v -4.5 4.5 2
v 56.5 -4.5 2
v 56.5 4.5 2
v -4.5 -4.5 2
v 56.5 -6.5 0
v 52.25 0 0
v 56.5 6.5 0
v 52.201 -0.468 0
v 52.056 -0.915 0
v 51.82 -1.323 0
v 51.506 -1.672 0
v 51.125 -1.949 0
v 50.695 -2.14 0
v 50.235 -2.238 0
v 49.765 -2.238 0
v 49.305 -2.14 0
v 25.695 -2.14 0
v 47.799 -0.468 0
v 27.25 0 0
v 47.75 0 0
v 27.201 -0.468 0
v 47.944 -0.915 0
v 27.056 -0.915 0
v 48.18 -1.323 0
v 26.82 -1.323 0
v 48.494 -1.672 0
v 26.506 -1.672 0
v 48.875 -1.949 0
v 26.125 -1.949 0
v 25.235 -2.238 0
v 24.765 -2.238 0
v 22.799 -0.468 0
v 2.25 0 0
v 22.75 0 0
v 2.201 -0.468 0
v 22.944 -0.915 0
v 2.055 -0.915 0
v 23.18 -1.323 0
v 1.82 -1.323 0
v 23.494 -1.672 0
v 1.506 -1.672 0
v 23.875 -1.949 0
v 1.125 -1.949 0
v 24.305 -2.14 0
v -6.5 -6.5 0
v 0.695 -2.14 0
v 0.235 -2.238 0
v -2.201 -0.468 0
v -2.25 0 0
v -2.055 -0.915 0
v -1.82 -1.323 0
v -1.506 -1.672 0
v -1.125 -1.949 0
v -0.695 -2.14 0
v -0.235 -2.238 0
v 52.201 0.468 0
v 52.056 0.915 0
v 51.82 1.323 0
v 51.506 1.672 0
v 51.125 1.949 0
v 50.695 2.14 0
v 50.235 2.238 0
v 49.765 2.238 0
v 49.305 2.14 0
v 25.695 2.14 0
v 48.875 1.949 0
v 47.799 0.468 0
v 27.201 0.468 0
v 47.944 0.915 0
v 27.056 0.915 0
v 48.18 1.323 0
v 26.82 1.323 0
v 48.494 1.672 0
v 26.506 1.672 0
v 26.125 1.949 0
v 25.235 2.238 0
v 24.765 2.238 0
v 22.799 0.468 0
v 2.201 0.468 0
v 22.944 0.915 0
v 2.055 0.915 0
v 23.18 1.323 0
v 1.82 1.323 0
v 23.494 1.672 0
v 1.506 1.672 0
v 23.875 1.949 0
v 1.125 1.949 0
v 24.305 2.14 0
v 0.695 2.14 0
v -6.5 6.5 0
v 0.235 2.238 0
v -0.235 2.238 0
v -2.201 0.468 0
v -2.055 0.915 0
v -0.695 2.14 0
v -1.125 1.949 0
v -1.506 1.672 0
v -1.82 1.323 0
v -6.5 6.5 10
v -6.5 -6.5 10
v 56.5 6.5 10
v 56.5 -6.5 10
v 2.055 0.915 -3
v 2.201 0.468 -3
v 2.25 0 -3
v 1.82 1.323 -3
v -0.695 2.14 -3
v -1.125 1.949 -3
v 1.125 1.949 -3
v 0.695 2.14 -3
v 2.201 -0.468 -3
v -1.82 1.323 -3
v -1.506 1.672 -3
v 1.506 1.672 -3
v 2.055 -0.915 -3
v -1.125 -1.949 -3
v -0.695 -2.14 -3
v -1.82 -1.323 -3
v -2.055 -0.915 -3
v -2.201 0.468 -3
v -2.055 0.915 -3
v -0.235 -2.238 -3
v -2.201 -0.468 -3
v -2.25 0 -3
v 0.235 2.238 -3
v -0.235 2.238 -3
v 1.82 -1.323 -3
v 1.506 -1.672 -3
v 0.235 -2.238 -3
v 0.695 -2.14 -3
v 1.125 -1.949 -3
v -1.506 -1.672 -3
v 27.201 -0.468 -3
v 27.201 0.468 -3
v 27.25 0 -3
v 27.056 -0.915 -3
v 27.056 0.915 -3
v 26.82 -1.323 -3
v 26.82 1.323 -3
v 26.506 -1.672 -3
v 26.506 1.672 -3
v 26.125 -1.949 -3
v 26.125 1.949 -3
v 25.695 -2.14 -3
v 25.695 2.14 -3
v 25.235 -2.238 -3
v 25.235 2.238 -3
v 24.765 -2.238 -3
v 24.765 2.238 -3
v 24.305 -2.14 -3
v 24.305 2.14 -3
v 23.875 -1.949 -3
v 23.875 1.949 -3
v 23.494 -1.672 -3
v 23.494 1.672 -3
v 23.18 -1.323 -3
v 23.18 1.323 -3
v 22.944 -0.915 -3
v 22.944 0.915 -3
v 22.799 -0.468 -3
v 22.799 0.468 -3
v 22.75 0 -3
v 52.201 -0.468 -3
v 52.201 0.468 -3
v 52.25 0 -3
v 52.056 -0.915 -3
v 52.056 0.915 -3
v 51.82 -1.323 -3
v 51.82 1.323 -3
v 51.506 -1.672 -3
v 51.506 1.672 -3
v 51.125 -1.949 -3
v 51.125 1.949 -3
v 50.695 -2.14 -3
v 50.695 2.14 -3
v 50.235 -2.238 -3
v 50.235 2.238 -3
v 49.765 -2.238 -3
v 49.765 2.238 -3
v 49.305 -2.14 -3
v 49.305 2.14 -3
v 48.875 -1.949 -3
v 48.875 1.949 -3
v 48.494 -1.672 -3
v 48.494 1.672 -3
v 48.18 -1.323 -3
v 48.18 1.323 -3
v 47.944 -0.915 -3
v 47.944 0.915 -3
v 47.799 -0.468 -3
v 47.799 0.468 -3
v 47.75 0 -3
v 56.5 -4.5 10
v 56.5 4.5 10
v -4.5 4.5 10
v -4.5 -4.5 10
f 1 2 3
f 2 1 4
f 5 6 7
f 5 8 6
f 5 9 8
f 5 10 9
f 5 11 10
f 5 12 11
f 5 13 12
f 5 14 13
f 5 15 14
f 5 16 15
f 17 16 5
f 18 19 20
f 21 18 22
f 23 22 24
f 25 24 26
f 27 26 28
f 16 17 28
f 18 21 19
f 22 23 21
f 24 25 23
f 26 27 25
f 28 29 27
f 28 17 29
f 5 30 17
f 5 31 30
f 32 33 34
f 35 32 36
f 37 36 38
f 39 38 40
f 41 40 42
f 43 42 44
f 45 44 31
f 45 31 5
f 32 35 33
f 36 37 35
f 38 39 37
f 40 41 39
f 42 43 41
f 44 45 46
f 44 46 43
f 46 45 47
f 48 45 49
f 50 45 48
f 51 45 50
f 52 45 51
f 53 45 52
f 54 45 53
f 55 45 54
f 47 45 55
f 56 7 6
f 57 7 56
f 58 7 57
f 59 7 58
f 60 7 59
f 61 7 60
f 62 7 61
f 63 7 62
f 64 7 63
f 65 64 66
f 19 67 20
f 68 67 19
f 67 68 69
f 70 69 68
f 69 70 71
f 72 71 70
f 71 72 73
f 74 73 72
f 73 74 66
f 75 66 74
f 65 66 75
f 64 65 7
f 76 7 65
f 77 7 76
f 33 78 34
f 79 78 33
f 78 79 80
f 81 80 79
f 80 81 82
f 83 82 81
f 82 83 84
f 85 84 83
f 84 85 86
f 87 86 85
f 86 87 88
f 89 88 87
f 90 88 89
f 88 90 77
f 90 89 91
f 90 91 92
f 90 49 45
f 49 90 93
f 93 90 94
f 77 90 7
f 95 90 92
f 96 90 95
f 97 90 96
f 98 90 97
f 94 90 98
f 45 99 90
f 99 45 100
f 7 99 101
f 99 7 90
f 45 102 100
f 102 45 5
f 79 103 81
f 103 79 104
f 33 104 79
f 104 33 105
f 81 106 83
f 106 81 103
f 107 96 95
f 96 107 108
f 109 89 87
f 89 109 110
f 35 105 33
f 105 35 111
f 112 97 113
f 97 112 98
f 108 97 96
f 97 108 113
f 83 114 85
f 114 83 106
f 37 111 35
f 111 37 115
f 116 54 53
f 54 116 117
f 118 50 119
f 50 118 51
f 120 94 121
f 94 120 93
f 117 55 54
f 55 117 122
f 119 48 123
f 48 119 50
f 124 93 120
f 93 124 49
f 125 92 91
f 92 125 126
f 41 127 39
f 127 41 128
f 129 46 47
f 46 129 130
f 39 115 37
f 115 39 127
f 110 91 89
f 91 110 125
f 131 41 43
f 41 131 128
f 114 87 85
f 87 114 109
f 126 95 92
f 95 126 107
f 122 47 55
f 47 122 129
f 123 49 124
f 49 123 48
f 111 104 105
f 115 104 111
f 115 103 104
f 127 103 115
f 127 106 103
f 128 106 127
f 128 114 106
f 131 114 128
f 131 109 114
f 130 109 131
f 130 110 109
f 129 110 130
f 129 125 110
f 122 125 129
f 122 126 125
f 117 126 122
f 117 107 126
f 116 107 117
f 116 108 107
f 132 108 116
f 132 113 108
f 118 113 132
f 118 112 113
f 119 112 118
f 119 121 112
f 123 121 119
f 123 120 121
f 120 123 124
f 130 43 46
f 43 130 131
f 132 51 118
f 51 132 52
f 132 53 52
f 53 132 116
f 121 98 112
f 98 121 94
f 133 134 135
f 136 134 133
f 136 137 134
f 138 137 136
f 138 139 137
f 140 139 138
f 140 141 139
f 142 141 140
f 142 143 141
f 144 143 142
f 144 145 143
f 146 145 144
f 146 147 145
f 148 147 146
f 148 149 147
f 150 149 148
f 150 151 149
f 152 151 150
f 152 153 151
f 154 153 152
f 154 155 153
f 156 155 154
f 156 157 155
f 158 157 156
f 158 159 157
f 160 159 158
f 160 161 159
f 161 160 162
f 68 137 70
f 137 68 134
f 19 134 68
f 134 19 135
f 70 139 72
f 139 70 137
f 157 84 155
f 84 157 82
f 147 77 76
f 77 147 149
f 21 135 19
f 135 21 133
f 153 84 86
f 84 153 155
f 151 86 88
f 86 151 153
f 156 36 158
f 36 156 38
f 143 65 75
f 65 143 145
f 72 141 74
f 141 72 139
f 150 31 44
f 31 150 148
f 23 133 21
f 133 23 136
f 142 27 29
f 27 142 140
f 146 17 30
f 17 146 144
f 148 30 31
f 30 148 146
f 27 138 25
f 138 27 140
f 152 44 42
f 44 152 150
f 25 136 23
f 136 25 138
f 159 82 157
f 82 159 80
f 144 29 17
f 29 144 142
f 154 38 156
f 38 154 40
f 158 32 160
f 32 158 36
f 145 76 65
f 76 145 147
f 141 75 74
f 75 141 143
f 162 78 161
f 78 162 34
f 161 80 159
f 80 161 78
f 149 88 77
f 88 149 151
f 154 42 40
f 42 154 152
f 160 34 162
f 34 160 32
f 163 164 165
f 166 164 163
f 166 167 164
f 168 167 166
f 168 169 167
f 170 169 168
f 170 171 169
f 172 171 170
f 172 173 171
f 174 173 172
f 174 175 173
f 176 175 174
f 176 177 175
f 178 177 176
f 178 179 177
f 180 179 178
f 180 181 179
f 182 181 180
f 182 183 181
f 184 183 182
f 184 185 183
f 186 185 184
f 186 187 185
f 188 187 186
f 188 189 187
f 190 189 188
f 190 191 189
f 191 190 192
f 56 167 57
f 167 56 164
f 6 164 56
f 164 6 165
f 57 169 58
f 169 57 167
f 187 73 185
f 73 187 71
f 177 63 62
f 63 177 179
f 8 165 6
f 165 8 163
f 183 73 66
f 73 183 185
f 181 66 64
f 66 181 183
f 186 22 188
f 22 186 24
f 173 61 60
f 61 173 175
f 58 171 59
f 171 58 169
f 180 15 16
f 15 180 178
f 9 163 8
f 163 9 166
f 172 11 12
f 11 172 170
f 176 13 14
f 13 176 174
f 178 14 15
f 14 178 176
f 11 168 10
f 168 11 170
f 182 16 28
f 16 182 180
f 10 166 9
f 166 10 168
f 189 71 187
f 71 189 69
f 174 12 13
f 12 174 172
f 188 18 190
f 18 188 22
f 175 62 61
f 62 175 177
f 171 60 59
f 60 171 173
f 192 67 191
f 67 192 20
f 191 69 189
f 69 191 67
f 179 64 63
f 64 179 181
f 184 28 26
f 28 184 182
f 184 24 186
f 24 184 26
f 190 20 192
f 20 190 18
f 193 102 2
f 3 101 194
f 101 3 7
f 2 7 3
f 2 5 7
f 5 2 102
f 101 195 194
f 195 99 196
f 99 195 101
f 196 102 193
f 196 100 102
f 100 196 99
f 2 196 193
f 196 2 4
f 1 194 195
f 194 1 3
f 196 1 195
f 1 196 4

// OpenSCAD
// file: common.scad
CENTER_SIZE = 9;
SLEEVE_REACH = 56.5;
GROOVE_WIDTH = 9;
WALL_HEIGHT = 10;
WALL_THICKNESS = 2;
BASE_THICKNESS = 2;
TOTAL_WIDTH = GROOVE_WIDTH + 2 * WALL_THICKNESS;
SLEEVE_LENGTH = SLEEVE_REACH - CENTER_SIZE/2;
DOWEL_DIAMETER = 4.5;
DOWEL_DEPTH = 3;
CARDBOARD_THICKNESS = 2;
GROOVE_BOTTOM = CARDBOARD_THICKNESS;
CURVE_POWER = 2;
CURVE_POINTS = 20;
TILT_ANGLE_EXTRA = 5;
FLEXIBLE_WALL_HEIGHT = WALL_HEIGHT * 2;
function wall_curve(z) =
    GROOVE_BOTTOM/2 + (GROOVE_WIDTH/2 - GROOVE_BOTTOM/2) * pow(z/(FLEXIBLE_WALL_HEIGHT - BASE_THICKNESS), CURVE_POWER);
module curved_wall_profile(side) {
    wall_h = FLEXIBLE_WALL_HEIGHT - BASE_THICKNESS;
    points_inner = [for (i = [0:CURVE_POINTS])
        [wall_curve(i * wall_h / CURVE_POINTS) * side,
         i * wall_h / CURVE_POINTS]
    ];
    points_outer = [for (i = [0:CURVE_POINTS])
        [(wall_curve(i * wall_h / CURVE_POINTS) + WALL_THICKNESS) * side,
         i * wall_h / CURVE_POINTS]
    ];
    all_points = concat(
        [[points_inner[0][0], 0]],
        points_inner,
        [points_outer[len(points_outer)-1]],
        [for (i = [len(points_outer)-1:-1:0]) points_outer[i]],
        [[points_outer[0][0], 0]]
    );
    polygon(all_points);
}
module draw_regular_wall_base(width) {
    translate([0, 0, BASE_THICKNESS])
        cube([width, WALL_THICKNESS, WALL_HEIGHT - BASE_THICKNESS]);
}
module draw_flexible_wall_base(width) {
    tilt_angle = atan((GROOVE_WIDTH/2 - GROOVE_BOTTOM/2) / (FLEXIBLE_WALL_HEIGHT - BASE_THICKNESS)) + TILT_ANGLE_EXTRA;
    rotate([0, 0, 90])
        rotate([tilt_angle + 6, 0, 0])
            rotate([90, 0, 90])
                linear_extrude(height = width)
                    curved_wall_profile(1);
}
module draw_center_base(with_dowel = false) {
    union() {
        translate([-TOTAL_WIDTH/2, -TOTAL_WIDTH/2, 0])
            cube([TOTAL_WIDTH, TOTAL_WIDTH, BASE_THICKNESS]);
        if (with_dowel) {
            translate([0, 0, -DOWEL_DEPTH])
                cylinder(h=DOWEL_DEPTH, d=DOWEL_DIAMETER, $fn=30);
        }
    }
}
module place_regular_center_wall(side) {
    if (side == 0) {
        translate([CENTER_SIZE/2 + WALL_THICKNESS, -TOTAL_WIDTH/2, 0])
            rotate([0, 0, 90])
                draw_regular_wall_base(TOTAL_WIDTH);
    } else if (side == 1) {
        translate([-TOTAL_WIDTH/2, CENTER_SIZE/2, 0])
            draw_regular_wall_base(TOTAL_WIDTH);
    } else if (side == 2) {
        translate([-CENTER_SIZE/2, -TOTAL_WIDTH/2, 0])
            rotate([0, 0, 90])
                draw_regular_wall_base(TOTAL_WIDTH);
    } else if (side == 3) {
        translate([-TOTAL_WIDTH/2, -CENTER_SIZE/2 - WALL_THICKNESS, 0])
            draw_regular_wall_base(TOTAL_WIDTH);
    }
}
module place_flexible_center_wall(side) {
    if (side == 0) {
        translate([CENTER_SIZE/2 - WALL_THICKNESS/2, TOTAL_WIDTH/2, 0])
            rotate([0, 0, 180])
                draw_flexible_wall_base(TOTAL_WIDTH);
    } else if (side == 1) {
        translate([-TOTAL_WIDTH/2, CENTER_SIZE/2 - WALL_THICKNESS/2, 0])
            rotate([0, 0, 270])
                draw_flexible_wall_base(TOTAL_WIDTH);
    } else if (side == 2) {
        translate([-CENTER_SIZE/2 + WALL_THICKNESS/2, -TOTAL_WIDTH/2, 0])
            draw_flexible_wall_base(TOTAL_WIDTH);
    } else if (side == 3) {
        translate([CENTER_SIZE/2 + WALL_THICKNESS, -TOTAL_WIDTH/2 + WALL_THICKNESS + WALL_THICKNESS/2, 0])
            rotate([0, 0, 90])
                draw_flexible_wall_base(TOTAL_WIDTH);
    }
}
module place_center_wall(side, wall_type = "regular") {
    if (wall_type == "regular") {
        place_regular_center_wall(side);
    } else if (wall_type == "flexible") {
        place_flexible_center_wall(side);
    }
}
module draw_sleeve_base(with_dowel = false) {
    union() {
        translate([0, -TOTAL_WIDTH/2, 0])
            cube([SLEEVE_LENGTH, TOTAL_WIDTH, BASE_THICKNESS]);
        if (with_dowel) {
            translate([25 - CENTER_SIZE/2, 0, -DOWEL_DEPTH])
                cylinder(h=DOWEL_DEPTH, d=DOWEL_DIAMETER, $fn=30);
            translate([50 - CENTER_SIZE/2, 0, -DOWEL_DEPTH])
                cylinder(h=DOWEL_DEPTH, d=DOWEL_DIAMETER, $fn=30);
        }
    }
}
module draw_regular_sleeve_wall(wall_side) {
    y_offset = (wall_side == "left") ? -TOTAL_WIDTH/2 : TOTAL_WIDTH/2 - WALL_THICKNESS;
    translate([0, y_offset, 0])
        draw_regular_wall_base(SLEEVE_LENGTH);
}
module draw_flexible_sleeve_wall(side) {
    if (side == "left") {
        translate([0, TOTAL_WIDTH/2 - WALL_THICKNESS/2 - WALL_THICKNESS, 0])
            rotate([0, 0, 270])
                draw_flexible_wall_base(SLEEVE_LENGTH);
    } else if (side == "right") {
        translate([SLEEVE_LENGTH, -TOTAL_WIDTH/2 + WALL_THICKNESS + WALL_THICKNESS/2, 0])
            rotate([0, 0, 90])
                draw_flexible_wall_base(SLEEVE_LENGTH);
    }
}
module draw_sleeve_wall(wall_side, wall_type = "regular") {
    if (wall_type == "regular") {
        draw_regular_sleeve_wall(wall_side);
    } else if (wall_type == "flexible") {
        draw_flexible_sleeve_wall(wall_side);
    }
}
module draw_full_sleeve(with_dowel = false, wall_type = "regular") {
    union() {
        draw_sleeve_base(with_dowel);
        draw_sleeve_wall("left", wall_type);
        draw_sleeve_wall("right", wall_type);
    }
}
module place_sleeve(side, with_dowel = false, wall_type = "regular") {
    if (side == 0) {
        translate([CENTER_SIZE/2, 0, 0])
            draw_full_sleeve(with_dowel, wall_type);
    } else if (side == 1) {
        rotate([0, 0, 90])
            translate([CENTER_SIZE/2, 0, 0])
                draw_full_sleeve(with_dowel, wall_type);
    } else if (side == 2) {
        rotate([0, 0, 180])
            translate([CENTER_SIZE/2, 0, 0])
                draw_full_sleeve(with_dowel, wall_type);
    } else if (side == 3) {
        rotate([0, 0, 270])
            translate([CENTER_SIZE/2, 0, 0])
                draw_full_sleeve(with_dowel, wall_type);
    }
}
module add_dowel(x, y, dowel_diameter, dowel_depth) {
    translate([x, y, -dowel_depth])
        cylinder(h=dowel_depth, d=dowel_diameter, $fn=30);
}
// main file
use <common.scad>

union() {
    draw_center_base(with_dowel = true);
    place_center_wall(1);
    place_center_wall(2);
    place_center_wall(3);
    place_sleeve(0, with_dowel = true);
}
